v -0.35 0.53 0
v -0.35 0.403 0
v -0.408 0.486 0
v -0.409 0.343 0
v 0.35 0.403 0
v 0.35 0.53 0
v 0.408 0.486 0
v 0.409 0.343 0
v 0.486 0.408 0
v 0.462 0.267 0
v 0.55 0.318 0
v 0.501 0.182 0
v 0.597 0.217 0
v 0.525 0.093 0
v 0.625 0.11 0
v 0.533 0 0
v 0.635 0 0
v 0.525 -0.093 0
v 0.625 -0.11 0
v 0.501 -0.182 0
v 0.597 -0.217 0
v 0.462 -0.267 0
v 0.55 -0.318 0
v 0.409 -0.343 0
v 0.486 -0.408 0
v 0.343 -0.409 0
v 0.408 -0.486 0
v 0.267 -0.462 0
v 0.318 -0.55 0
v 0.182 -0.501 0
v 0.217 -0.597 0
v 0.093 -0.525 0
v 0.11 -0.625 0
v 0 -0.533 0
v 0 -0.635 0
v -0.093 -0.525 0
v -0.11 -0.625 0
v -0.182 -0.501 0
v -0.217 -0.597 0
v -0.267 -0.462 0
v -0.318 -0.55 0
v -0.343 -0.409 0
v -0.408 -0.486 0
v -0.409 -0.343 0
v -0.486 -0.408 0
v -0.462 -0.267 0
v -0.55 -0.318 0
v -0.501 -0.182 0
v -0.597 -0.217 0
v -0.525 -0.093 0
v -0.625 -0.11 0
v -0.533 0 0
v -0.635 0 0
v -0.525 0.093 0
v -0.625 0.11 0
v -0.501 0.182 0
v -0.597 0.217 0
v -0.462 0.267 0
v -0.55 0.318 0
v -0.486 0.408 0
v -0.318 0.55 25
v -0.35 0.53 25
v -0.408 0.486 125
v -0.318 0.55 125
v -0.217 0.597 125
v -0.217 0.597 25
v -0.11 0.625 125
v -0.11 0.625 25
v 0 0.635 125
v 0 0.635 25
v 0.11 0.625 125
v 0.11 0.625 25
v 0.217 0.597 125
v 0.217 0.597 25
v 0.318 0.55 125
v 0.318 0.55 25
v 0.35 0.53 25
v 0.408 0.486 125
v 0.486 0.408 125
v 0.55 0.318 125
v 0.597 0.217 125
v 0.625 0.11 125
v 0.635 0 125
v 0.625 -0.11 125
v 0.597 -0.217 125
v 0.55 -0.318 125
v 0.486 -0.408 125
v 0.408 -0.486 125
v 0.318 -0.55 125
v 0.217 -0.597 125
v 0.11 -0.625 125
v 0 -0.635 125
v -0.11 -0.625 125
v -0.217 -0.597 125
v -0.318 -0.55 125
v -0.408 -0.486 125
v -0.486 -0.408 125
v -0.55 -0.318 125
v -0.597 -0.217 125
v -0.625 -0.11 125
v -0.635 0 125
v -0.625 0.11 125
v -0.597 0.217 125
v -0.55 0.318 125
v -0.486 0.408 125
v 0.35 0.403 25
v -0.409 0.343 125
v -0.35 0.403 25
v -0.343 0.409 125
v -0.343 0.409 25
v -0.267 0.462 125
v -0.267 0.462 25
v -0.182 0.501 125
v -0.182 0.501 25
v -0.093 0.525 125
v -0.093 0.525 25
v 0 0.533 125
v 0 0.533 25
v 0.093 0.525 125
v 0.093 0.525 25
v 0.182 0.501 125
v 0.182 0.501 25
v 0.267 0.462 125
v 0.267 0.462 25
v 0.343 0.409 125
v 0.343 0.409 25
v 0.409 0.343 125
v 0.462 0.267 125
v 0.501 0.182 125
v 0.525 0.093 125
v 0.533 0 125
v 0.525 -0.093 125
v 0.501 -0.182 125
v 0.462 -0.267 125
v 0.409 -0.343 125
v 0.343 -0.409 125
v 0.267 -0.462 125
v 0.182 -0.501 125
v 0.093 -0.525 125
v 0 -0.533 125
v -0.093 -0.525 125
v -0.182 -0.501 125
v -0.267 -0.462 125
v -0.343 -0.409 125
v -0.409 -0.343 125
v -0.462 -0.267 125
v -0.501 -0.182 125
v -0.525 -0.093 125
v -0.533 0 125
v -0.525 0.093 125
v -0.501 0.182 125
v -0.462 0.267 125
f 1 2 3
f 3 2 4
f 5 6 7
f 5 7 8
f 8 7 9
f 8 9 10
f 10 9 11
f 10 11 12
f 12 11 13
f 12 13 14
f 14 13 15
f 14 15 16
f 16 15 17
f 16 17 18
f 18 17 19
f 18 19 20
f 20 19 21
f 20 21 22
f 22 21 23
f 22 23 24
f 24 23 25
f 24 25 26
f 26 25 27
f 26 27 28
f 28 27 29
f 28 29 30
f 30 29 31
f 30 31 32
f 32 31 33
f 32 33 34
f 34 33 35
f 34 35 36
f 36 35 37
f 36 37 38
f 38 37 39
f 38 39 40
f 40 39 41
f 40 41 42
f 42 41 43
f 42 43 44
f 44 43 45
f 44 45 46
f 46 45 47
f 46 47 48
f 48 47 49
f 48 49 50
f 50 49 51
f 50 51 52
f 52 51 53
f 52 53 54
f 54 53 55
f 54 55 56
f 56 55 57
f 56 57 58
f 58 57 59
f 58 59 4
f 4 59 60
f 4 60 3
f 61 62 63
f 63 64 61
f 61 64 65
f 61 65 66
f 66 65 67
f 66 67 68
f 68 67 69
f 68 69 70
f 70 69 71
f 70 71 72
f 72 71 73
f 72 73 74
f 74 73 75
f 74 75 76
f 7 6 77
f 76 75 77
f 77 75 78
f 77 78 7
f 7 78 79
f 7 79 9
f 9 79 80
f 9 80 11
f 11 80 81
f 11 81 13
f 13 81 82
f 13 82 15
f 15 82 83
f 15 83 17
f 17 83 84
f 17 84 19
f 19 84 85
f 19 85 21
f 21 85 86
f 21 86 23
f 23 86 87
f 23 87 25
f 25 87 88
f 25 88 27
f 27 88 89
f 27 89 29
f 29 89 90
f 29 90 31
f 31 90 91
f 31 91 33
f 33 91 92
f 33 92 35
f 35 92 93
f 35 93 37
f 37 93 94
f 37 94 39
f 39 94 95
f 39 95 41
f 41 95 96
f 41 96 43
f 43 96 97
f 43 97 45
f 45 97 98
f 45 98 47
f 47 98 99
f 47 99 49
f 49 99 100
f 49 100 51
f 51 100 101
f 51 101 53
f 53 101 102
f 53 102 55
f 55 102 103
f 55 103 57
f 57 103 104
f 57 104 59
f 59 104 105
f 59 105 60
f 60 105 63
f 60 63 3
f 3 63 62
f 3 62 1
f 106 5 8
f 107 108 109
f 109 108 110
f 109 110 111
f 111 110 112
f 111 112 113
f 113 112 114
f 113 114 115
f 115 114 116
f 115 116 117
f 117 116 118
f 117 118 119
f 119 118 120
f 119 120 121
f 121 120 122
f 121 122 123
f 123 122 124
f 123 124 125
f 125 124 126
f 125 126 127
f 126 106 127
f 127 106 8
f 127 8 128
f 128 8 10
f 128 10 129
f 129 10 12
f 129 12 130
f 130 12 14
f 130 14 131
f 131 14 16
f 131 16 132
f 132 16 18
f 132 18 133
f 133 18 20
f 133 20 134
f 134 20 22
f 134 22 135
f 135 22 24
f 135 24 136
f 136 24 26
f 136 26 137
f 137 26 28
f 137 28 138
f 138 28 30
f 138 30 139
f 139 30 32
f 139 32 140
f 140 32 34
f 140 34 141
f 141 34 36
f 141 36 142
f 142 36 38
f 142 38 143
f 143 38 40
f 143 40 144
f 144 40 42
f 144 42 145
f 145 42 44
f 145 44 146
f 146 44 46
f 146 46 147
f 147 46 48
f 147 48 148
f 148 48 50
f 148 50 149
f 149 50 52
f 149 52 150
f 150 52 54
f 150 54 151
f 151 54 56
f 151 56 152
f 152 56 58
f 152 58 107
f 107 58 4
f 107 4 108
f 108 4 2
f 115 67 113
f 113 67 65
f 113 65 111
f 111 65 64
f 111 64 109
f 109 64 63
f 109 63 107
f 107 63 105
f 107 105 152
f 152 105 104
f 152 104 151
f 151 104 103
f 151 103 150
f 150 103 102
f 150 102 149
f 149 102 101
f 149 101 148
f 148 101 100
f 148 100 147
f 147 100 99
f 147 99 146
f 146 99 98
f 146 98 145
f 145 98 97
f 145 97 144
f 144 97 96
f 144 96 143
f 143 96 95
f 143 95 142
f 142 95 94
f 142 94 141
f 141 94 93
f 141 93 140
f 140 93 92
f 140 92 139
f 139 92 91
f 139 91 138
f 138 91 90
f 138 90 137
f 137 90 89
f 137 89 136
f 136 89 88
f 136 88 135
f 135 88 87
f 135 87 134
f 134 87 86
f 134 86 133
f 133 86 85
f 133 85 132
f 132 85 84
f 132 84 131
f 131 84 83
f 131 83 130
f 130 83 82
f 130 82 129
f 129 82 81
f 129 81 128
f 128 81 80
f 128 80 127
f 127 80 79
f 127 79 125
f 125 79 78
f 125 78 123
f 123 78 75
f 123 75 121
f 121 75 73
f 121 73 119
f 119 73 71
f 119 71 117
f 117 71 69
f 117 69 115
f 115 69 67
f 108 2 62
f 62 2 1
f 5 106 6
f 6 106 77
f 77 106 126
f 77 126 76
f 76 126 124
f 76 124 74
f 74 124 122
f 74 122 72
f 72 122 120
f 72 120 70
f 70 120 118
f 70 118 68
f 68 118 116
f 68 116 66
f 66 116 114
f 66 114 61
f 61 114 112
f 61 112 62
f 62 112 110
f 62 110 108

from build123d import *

# Parameters (mm, degrees)
SKETCH1_R           = 0.635
SKETCH1_R_2         = 0.5334
BOSS_EXTRUDE1_DEPTH = 125
SKETCH2_W           = 0.7
SKETCH2_H           = 0.8668
CUT_EXTRUDE1_DEPTH  = 25


with BuildPart() as part:
    # Sketch1 → Boss-Extrude1 (new body)
    with BuildSketch(Plane.XY):
        Circle(SKETCH1_R)
        Circle(SKETCH1_R_2, mode=Mode.SUBTRACT)
    extrude(amount=BOSS_EXTRUDE1_DEPTH)

    # Sketch2 → Cut-Extrude1 (cut)
    with BuildSketch(Plane.XY):
        with Locations((0, 0.5334)):
            Rectangle(SKETCH2_W, SKETCH2_H)
    extrude(amount=CUT_EXTRUDE1_DEPTH, mode=Mode.SUBTRACT)


solid = part.part
